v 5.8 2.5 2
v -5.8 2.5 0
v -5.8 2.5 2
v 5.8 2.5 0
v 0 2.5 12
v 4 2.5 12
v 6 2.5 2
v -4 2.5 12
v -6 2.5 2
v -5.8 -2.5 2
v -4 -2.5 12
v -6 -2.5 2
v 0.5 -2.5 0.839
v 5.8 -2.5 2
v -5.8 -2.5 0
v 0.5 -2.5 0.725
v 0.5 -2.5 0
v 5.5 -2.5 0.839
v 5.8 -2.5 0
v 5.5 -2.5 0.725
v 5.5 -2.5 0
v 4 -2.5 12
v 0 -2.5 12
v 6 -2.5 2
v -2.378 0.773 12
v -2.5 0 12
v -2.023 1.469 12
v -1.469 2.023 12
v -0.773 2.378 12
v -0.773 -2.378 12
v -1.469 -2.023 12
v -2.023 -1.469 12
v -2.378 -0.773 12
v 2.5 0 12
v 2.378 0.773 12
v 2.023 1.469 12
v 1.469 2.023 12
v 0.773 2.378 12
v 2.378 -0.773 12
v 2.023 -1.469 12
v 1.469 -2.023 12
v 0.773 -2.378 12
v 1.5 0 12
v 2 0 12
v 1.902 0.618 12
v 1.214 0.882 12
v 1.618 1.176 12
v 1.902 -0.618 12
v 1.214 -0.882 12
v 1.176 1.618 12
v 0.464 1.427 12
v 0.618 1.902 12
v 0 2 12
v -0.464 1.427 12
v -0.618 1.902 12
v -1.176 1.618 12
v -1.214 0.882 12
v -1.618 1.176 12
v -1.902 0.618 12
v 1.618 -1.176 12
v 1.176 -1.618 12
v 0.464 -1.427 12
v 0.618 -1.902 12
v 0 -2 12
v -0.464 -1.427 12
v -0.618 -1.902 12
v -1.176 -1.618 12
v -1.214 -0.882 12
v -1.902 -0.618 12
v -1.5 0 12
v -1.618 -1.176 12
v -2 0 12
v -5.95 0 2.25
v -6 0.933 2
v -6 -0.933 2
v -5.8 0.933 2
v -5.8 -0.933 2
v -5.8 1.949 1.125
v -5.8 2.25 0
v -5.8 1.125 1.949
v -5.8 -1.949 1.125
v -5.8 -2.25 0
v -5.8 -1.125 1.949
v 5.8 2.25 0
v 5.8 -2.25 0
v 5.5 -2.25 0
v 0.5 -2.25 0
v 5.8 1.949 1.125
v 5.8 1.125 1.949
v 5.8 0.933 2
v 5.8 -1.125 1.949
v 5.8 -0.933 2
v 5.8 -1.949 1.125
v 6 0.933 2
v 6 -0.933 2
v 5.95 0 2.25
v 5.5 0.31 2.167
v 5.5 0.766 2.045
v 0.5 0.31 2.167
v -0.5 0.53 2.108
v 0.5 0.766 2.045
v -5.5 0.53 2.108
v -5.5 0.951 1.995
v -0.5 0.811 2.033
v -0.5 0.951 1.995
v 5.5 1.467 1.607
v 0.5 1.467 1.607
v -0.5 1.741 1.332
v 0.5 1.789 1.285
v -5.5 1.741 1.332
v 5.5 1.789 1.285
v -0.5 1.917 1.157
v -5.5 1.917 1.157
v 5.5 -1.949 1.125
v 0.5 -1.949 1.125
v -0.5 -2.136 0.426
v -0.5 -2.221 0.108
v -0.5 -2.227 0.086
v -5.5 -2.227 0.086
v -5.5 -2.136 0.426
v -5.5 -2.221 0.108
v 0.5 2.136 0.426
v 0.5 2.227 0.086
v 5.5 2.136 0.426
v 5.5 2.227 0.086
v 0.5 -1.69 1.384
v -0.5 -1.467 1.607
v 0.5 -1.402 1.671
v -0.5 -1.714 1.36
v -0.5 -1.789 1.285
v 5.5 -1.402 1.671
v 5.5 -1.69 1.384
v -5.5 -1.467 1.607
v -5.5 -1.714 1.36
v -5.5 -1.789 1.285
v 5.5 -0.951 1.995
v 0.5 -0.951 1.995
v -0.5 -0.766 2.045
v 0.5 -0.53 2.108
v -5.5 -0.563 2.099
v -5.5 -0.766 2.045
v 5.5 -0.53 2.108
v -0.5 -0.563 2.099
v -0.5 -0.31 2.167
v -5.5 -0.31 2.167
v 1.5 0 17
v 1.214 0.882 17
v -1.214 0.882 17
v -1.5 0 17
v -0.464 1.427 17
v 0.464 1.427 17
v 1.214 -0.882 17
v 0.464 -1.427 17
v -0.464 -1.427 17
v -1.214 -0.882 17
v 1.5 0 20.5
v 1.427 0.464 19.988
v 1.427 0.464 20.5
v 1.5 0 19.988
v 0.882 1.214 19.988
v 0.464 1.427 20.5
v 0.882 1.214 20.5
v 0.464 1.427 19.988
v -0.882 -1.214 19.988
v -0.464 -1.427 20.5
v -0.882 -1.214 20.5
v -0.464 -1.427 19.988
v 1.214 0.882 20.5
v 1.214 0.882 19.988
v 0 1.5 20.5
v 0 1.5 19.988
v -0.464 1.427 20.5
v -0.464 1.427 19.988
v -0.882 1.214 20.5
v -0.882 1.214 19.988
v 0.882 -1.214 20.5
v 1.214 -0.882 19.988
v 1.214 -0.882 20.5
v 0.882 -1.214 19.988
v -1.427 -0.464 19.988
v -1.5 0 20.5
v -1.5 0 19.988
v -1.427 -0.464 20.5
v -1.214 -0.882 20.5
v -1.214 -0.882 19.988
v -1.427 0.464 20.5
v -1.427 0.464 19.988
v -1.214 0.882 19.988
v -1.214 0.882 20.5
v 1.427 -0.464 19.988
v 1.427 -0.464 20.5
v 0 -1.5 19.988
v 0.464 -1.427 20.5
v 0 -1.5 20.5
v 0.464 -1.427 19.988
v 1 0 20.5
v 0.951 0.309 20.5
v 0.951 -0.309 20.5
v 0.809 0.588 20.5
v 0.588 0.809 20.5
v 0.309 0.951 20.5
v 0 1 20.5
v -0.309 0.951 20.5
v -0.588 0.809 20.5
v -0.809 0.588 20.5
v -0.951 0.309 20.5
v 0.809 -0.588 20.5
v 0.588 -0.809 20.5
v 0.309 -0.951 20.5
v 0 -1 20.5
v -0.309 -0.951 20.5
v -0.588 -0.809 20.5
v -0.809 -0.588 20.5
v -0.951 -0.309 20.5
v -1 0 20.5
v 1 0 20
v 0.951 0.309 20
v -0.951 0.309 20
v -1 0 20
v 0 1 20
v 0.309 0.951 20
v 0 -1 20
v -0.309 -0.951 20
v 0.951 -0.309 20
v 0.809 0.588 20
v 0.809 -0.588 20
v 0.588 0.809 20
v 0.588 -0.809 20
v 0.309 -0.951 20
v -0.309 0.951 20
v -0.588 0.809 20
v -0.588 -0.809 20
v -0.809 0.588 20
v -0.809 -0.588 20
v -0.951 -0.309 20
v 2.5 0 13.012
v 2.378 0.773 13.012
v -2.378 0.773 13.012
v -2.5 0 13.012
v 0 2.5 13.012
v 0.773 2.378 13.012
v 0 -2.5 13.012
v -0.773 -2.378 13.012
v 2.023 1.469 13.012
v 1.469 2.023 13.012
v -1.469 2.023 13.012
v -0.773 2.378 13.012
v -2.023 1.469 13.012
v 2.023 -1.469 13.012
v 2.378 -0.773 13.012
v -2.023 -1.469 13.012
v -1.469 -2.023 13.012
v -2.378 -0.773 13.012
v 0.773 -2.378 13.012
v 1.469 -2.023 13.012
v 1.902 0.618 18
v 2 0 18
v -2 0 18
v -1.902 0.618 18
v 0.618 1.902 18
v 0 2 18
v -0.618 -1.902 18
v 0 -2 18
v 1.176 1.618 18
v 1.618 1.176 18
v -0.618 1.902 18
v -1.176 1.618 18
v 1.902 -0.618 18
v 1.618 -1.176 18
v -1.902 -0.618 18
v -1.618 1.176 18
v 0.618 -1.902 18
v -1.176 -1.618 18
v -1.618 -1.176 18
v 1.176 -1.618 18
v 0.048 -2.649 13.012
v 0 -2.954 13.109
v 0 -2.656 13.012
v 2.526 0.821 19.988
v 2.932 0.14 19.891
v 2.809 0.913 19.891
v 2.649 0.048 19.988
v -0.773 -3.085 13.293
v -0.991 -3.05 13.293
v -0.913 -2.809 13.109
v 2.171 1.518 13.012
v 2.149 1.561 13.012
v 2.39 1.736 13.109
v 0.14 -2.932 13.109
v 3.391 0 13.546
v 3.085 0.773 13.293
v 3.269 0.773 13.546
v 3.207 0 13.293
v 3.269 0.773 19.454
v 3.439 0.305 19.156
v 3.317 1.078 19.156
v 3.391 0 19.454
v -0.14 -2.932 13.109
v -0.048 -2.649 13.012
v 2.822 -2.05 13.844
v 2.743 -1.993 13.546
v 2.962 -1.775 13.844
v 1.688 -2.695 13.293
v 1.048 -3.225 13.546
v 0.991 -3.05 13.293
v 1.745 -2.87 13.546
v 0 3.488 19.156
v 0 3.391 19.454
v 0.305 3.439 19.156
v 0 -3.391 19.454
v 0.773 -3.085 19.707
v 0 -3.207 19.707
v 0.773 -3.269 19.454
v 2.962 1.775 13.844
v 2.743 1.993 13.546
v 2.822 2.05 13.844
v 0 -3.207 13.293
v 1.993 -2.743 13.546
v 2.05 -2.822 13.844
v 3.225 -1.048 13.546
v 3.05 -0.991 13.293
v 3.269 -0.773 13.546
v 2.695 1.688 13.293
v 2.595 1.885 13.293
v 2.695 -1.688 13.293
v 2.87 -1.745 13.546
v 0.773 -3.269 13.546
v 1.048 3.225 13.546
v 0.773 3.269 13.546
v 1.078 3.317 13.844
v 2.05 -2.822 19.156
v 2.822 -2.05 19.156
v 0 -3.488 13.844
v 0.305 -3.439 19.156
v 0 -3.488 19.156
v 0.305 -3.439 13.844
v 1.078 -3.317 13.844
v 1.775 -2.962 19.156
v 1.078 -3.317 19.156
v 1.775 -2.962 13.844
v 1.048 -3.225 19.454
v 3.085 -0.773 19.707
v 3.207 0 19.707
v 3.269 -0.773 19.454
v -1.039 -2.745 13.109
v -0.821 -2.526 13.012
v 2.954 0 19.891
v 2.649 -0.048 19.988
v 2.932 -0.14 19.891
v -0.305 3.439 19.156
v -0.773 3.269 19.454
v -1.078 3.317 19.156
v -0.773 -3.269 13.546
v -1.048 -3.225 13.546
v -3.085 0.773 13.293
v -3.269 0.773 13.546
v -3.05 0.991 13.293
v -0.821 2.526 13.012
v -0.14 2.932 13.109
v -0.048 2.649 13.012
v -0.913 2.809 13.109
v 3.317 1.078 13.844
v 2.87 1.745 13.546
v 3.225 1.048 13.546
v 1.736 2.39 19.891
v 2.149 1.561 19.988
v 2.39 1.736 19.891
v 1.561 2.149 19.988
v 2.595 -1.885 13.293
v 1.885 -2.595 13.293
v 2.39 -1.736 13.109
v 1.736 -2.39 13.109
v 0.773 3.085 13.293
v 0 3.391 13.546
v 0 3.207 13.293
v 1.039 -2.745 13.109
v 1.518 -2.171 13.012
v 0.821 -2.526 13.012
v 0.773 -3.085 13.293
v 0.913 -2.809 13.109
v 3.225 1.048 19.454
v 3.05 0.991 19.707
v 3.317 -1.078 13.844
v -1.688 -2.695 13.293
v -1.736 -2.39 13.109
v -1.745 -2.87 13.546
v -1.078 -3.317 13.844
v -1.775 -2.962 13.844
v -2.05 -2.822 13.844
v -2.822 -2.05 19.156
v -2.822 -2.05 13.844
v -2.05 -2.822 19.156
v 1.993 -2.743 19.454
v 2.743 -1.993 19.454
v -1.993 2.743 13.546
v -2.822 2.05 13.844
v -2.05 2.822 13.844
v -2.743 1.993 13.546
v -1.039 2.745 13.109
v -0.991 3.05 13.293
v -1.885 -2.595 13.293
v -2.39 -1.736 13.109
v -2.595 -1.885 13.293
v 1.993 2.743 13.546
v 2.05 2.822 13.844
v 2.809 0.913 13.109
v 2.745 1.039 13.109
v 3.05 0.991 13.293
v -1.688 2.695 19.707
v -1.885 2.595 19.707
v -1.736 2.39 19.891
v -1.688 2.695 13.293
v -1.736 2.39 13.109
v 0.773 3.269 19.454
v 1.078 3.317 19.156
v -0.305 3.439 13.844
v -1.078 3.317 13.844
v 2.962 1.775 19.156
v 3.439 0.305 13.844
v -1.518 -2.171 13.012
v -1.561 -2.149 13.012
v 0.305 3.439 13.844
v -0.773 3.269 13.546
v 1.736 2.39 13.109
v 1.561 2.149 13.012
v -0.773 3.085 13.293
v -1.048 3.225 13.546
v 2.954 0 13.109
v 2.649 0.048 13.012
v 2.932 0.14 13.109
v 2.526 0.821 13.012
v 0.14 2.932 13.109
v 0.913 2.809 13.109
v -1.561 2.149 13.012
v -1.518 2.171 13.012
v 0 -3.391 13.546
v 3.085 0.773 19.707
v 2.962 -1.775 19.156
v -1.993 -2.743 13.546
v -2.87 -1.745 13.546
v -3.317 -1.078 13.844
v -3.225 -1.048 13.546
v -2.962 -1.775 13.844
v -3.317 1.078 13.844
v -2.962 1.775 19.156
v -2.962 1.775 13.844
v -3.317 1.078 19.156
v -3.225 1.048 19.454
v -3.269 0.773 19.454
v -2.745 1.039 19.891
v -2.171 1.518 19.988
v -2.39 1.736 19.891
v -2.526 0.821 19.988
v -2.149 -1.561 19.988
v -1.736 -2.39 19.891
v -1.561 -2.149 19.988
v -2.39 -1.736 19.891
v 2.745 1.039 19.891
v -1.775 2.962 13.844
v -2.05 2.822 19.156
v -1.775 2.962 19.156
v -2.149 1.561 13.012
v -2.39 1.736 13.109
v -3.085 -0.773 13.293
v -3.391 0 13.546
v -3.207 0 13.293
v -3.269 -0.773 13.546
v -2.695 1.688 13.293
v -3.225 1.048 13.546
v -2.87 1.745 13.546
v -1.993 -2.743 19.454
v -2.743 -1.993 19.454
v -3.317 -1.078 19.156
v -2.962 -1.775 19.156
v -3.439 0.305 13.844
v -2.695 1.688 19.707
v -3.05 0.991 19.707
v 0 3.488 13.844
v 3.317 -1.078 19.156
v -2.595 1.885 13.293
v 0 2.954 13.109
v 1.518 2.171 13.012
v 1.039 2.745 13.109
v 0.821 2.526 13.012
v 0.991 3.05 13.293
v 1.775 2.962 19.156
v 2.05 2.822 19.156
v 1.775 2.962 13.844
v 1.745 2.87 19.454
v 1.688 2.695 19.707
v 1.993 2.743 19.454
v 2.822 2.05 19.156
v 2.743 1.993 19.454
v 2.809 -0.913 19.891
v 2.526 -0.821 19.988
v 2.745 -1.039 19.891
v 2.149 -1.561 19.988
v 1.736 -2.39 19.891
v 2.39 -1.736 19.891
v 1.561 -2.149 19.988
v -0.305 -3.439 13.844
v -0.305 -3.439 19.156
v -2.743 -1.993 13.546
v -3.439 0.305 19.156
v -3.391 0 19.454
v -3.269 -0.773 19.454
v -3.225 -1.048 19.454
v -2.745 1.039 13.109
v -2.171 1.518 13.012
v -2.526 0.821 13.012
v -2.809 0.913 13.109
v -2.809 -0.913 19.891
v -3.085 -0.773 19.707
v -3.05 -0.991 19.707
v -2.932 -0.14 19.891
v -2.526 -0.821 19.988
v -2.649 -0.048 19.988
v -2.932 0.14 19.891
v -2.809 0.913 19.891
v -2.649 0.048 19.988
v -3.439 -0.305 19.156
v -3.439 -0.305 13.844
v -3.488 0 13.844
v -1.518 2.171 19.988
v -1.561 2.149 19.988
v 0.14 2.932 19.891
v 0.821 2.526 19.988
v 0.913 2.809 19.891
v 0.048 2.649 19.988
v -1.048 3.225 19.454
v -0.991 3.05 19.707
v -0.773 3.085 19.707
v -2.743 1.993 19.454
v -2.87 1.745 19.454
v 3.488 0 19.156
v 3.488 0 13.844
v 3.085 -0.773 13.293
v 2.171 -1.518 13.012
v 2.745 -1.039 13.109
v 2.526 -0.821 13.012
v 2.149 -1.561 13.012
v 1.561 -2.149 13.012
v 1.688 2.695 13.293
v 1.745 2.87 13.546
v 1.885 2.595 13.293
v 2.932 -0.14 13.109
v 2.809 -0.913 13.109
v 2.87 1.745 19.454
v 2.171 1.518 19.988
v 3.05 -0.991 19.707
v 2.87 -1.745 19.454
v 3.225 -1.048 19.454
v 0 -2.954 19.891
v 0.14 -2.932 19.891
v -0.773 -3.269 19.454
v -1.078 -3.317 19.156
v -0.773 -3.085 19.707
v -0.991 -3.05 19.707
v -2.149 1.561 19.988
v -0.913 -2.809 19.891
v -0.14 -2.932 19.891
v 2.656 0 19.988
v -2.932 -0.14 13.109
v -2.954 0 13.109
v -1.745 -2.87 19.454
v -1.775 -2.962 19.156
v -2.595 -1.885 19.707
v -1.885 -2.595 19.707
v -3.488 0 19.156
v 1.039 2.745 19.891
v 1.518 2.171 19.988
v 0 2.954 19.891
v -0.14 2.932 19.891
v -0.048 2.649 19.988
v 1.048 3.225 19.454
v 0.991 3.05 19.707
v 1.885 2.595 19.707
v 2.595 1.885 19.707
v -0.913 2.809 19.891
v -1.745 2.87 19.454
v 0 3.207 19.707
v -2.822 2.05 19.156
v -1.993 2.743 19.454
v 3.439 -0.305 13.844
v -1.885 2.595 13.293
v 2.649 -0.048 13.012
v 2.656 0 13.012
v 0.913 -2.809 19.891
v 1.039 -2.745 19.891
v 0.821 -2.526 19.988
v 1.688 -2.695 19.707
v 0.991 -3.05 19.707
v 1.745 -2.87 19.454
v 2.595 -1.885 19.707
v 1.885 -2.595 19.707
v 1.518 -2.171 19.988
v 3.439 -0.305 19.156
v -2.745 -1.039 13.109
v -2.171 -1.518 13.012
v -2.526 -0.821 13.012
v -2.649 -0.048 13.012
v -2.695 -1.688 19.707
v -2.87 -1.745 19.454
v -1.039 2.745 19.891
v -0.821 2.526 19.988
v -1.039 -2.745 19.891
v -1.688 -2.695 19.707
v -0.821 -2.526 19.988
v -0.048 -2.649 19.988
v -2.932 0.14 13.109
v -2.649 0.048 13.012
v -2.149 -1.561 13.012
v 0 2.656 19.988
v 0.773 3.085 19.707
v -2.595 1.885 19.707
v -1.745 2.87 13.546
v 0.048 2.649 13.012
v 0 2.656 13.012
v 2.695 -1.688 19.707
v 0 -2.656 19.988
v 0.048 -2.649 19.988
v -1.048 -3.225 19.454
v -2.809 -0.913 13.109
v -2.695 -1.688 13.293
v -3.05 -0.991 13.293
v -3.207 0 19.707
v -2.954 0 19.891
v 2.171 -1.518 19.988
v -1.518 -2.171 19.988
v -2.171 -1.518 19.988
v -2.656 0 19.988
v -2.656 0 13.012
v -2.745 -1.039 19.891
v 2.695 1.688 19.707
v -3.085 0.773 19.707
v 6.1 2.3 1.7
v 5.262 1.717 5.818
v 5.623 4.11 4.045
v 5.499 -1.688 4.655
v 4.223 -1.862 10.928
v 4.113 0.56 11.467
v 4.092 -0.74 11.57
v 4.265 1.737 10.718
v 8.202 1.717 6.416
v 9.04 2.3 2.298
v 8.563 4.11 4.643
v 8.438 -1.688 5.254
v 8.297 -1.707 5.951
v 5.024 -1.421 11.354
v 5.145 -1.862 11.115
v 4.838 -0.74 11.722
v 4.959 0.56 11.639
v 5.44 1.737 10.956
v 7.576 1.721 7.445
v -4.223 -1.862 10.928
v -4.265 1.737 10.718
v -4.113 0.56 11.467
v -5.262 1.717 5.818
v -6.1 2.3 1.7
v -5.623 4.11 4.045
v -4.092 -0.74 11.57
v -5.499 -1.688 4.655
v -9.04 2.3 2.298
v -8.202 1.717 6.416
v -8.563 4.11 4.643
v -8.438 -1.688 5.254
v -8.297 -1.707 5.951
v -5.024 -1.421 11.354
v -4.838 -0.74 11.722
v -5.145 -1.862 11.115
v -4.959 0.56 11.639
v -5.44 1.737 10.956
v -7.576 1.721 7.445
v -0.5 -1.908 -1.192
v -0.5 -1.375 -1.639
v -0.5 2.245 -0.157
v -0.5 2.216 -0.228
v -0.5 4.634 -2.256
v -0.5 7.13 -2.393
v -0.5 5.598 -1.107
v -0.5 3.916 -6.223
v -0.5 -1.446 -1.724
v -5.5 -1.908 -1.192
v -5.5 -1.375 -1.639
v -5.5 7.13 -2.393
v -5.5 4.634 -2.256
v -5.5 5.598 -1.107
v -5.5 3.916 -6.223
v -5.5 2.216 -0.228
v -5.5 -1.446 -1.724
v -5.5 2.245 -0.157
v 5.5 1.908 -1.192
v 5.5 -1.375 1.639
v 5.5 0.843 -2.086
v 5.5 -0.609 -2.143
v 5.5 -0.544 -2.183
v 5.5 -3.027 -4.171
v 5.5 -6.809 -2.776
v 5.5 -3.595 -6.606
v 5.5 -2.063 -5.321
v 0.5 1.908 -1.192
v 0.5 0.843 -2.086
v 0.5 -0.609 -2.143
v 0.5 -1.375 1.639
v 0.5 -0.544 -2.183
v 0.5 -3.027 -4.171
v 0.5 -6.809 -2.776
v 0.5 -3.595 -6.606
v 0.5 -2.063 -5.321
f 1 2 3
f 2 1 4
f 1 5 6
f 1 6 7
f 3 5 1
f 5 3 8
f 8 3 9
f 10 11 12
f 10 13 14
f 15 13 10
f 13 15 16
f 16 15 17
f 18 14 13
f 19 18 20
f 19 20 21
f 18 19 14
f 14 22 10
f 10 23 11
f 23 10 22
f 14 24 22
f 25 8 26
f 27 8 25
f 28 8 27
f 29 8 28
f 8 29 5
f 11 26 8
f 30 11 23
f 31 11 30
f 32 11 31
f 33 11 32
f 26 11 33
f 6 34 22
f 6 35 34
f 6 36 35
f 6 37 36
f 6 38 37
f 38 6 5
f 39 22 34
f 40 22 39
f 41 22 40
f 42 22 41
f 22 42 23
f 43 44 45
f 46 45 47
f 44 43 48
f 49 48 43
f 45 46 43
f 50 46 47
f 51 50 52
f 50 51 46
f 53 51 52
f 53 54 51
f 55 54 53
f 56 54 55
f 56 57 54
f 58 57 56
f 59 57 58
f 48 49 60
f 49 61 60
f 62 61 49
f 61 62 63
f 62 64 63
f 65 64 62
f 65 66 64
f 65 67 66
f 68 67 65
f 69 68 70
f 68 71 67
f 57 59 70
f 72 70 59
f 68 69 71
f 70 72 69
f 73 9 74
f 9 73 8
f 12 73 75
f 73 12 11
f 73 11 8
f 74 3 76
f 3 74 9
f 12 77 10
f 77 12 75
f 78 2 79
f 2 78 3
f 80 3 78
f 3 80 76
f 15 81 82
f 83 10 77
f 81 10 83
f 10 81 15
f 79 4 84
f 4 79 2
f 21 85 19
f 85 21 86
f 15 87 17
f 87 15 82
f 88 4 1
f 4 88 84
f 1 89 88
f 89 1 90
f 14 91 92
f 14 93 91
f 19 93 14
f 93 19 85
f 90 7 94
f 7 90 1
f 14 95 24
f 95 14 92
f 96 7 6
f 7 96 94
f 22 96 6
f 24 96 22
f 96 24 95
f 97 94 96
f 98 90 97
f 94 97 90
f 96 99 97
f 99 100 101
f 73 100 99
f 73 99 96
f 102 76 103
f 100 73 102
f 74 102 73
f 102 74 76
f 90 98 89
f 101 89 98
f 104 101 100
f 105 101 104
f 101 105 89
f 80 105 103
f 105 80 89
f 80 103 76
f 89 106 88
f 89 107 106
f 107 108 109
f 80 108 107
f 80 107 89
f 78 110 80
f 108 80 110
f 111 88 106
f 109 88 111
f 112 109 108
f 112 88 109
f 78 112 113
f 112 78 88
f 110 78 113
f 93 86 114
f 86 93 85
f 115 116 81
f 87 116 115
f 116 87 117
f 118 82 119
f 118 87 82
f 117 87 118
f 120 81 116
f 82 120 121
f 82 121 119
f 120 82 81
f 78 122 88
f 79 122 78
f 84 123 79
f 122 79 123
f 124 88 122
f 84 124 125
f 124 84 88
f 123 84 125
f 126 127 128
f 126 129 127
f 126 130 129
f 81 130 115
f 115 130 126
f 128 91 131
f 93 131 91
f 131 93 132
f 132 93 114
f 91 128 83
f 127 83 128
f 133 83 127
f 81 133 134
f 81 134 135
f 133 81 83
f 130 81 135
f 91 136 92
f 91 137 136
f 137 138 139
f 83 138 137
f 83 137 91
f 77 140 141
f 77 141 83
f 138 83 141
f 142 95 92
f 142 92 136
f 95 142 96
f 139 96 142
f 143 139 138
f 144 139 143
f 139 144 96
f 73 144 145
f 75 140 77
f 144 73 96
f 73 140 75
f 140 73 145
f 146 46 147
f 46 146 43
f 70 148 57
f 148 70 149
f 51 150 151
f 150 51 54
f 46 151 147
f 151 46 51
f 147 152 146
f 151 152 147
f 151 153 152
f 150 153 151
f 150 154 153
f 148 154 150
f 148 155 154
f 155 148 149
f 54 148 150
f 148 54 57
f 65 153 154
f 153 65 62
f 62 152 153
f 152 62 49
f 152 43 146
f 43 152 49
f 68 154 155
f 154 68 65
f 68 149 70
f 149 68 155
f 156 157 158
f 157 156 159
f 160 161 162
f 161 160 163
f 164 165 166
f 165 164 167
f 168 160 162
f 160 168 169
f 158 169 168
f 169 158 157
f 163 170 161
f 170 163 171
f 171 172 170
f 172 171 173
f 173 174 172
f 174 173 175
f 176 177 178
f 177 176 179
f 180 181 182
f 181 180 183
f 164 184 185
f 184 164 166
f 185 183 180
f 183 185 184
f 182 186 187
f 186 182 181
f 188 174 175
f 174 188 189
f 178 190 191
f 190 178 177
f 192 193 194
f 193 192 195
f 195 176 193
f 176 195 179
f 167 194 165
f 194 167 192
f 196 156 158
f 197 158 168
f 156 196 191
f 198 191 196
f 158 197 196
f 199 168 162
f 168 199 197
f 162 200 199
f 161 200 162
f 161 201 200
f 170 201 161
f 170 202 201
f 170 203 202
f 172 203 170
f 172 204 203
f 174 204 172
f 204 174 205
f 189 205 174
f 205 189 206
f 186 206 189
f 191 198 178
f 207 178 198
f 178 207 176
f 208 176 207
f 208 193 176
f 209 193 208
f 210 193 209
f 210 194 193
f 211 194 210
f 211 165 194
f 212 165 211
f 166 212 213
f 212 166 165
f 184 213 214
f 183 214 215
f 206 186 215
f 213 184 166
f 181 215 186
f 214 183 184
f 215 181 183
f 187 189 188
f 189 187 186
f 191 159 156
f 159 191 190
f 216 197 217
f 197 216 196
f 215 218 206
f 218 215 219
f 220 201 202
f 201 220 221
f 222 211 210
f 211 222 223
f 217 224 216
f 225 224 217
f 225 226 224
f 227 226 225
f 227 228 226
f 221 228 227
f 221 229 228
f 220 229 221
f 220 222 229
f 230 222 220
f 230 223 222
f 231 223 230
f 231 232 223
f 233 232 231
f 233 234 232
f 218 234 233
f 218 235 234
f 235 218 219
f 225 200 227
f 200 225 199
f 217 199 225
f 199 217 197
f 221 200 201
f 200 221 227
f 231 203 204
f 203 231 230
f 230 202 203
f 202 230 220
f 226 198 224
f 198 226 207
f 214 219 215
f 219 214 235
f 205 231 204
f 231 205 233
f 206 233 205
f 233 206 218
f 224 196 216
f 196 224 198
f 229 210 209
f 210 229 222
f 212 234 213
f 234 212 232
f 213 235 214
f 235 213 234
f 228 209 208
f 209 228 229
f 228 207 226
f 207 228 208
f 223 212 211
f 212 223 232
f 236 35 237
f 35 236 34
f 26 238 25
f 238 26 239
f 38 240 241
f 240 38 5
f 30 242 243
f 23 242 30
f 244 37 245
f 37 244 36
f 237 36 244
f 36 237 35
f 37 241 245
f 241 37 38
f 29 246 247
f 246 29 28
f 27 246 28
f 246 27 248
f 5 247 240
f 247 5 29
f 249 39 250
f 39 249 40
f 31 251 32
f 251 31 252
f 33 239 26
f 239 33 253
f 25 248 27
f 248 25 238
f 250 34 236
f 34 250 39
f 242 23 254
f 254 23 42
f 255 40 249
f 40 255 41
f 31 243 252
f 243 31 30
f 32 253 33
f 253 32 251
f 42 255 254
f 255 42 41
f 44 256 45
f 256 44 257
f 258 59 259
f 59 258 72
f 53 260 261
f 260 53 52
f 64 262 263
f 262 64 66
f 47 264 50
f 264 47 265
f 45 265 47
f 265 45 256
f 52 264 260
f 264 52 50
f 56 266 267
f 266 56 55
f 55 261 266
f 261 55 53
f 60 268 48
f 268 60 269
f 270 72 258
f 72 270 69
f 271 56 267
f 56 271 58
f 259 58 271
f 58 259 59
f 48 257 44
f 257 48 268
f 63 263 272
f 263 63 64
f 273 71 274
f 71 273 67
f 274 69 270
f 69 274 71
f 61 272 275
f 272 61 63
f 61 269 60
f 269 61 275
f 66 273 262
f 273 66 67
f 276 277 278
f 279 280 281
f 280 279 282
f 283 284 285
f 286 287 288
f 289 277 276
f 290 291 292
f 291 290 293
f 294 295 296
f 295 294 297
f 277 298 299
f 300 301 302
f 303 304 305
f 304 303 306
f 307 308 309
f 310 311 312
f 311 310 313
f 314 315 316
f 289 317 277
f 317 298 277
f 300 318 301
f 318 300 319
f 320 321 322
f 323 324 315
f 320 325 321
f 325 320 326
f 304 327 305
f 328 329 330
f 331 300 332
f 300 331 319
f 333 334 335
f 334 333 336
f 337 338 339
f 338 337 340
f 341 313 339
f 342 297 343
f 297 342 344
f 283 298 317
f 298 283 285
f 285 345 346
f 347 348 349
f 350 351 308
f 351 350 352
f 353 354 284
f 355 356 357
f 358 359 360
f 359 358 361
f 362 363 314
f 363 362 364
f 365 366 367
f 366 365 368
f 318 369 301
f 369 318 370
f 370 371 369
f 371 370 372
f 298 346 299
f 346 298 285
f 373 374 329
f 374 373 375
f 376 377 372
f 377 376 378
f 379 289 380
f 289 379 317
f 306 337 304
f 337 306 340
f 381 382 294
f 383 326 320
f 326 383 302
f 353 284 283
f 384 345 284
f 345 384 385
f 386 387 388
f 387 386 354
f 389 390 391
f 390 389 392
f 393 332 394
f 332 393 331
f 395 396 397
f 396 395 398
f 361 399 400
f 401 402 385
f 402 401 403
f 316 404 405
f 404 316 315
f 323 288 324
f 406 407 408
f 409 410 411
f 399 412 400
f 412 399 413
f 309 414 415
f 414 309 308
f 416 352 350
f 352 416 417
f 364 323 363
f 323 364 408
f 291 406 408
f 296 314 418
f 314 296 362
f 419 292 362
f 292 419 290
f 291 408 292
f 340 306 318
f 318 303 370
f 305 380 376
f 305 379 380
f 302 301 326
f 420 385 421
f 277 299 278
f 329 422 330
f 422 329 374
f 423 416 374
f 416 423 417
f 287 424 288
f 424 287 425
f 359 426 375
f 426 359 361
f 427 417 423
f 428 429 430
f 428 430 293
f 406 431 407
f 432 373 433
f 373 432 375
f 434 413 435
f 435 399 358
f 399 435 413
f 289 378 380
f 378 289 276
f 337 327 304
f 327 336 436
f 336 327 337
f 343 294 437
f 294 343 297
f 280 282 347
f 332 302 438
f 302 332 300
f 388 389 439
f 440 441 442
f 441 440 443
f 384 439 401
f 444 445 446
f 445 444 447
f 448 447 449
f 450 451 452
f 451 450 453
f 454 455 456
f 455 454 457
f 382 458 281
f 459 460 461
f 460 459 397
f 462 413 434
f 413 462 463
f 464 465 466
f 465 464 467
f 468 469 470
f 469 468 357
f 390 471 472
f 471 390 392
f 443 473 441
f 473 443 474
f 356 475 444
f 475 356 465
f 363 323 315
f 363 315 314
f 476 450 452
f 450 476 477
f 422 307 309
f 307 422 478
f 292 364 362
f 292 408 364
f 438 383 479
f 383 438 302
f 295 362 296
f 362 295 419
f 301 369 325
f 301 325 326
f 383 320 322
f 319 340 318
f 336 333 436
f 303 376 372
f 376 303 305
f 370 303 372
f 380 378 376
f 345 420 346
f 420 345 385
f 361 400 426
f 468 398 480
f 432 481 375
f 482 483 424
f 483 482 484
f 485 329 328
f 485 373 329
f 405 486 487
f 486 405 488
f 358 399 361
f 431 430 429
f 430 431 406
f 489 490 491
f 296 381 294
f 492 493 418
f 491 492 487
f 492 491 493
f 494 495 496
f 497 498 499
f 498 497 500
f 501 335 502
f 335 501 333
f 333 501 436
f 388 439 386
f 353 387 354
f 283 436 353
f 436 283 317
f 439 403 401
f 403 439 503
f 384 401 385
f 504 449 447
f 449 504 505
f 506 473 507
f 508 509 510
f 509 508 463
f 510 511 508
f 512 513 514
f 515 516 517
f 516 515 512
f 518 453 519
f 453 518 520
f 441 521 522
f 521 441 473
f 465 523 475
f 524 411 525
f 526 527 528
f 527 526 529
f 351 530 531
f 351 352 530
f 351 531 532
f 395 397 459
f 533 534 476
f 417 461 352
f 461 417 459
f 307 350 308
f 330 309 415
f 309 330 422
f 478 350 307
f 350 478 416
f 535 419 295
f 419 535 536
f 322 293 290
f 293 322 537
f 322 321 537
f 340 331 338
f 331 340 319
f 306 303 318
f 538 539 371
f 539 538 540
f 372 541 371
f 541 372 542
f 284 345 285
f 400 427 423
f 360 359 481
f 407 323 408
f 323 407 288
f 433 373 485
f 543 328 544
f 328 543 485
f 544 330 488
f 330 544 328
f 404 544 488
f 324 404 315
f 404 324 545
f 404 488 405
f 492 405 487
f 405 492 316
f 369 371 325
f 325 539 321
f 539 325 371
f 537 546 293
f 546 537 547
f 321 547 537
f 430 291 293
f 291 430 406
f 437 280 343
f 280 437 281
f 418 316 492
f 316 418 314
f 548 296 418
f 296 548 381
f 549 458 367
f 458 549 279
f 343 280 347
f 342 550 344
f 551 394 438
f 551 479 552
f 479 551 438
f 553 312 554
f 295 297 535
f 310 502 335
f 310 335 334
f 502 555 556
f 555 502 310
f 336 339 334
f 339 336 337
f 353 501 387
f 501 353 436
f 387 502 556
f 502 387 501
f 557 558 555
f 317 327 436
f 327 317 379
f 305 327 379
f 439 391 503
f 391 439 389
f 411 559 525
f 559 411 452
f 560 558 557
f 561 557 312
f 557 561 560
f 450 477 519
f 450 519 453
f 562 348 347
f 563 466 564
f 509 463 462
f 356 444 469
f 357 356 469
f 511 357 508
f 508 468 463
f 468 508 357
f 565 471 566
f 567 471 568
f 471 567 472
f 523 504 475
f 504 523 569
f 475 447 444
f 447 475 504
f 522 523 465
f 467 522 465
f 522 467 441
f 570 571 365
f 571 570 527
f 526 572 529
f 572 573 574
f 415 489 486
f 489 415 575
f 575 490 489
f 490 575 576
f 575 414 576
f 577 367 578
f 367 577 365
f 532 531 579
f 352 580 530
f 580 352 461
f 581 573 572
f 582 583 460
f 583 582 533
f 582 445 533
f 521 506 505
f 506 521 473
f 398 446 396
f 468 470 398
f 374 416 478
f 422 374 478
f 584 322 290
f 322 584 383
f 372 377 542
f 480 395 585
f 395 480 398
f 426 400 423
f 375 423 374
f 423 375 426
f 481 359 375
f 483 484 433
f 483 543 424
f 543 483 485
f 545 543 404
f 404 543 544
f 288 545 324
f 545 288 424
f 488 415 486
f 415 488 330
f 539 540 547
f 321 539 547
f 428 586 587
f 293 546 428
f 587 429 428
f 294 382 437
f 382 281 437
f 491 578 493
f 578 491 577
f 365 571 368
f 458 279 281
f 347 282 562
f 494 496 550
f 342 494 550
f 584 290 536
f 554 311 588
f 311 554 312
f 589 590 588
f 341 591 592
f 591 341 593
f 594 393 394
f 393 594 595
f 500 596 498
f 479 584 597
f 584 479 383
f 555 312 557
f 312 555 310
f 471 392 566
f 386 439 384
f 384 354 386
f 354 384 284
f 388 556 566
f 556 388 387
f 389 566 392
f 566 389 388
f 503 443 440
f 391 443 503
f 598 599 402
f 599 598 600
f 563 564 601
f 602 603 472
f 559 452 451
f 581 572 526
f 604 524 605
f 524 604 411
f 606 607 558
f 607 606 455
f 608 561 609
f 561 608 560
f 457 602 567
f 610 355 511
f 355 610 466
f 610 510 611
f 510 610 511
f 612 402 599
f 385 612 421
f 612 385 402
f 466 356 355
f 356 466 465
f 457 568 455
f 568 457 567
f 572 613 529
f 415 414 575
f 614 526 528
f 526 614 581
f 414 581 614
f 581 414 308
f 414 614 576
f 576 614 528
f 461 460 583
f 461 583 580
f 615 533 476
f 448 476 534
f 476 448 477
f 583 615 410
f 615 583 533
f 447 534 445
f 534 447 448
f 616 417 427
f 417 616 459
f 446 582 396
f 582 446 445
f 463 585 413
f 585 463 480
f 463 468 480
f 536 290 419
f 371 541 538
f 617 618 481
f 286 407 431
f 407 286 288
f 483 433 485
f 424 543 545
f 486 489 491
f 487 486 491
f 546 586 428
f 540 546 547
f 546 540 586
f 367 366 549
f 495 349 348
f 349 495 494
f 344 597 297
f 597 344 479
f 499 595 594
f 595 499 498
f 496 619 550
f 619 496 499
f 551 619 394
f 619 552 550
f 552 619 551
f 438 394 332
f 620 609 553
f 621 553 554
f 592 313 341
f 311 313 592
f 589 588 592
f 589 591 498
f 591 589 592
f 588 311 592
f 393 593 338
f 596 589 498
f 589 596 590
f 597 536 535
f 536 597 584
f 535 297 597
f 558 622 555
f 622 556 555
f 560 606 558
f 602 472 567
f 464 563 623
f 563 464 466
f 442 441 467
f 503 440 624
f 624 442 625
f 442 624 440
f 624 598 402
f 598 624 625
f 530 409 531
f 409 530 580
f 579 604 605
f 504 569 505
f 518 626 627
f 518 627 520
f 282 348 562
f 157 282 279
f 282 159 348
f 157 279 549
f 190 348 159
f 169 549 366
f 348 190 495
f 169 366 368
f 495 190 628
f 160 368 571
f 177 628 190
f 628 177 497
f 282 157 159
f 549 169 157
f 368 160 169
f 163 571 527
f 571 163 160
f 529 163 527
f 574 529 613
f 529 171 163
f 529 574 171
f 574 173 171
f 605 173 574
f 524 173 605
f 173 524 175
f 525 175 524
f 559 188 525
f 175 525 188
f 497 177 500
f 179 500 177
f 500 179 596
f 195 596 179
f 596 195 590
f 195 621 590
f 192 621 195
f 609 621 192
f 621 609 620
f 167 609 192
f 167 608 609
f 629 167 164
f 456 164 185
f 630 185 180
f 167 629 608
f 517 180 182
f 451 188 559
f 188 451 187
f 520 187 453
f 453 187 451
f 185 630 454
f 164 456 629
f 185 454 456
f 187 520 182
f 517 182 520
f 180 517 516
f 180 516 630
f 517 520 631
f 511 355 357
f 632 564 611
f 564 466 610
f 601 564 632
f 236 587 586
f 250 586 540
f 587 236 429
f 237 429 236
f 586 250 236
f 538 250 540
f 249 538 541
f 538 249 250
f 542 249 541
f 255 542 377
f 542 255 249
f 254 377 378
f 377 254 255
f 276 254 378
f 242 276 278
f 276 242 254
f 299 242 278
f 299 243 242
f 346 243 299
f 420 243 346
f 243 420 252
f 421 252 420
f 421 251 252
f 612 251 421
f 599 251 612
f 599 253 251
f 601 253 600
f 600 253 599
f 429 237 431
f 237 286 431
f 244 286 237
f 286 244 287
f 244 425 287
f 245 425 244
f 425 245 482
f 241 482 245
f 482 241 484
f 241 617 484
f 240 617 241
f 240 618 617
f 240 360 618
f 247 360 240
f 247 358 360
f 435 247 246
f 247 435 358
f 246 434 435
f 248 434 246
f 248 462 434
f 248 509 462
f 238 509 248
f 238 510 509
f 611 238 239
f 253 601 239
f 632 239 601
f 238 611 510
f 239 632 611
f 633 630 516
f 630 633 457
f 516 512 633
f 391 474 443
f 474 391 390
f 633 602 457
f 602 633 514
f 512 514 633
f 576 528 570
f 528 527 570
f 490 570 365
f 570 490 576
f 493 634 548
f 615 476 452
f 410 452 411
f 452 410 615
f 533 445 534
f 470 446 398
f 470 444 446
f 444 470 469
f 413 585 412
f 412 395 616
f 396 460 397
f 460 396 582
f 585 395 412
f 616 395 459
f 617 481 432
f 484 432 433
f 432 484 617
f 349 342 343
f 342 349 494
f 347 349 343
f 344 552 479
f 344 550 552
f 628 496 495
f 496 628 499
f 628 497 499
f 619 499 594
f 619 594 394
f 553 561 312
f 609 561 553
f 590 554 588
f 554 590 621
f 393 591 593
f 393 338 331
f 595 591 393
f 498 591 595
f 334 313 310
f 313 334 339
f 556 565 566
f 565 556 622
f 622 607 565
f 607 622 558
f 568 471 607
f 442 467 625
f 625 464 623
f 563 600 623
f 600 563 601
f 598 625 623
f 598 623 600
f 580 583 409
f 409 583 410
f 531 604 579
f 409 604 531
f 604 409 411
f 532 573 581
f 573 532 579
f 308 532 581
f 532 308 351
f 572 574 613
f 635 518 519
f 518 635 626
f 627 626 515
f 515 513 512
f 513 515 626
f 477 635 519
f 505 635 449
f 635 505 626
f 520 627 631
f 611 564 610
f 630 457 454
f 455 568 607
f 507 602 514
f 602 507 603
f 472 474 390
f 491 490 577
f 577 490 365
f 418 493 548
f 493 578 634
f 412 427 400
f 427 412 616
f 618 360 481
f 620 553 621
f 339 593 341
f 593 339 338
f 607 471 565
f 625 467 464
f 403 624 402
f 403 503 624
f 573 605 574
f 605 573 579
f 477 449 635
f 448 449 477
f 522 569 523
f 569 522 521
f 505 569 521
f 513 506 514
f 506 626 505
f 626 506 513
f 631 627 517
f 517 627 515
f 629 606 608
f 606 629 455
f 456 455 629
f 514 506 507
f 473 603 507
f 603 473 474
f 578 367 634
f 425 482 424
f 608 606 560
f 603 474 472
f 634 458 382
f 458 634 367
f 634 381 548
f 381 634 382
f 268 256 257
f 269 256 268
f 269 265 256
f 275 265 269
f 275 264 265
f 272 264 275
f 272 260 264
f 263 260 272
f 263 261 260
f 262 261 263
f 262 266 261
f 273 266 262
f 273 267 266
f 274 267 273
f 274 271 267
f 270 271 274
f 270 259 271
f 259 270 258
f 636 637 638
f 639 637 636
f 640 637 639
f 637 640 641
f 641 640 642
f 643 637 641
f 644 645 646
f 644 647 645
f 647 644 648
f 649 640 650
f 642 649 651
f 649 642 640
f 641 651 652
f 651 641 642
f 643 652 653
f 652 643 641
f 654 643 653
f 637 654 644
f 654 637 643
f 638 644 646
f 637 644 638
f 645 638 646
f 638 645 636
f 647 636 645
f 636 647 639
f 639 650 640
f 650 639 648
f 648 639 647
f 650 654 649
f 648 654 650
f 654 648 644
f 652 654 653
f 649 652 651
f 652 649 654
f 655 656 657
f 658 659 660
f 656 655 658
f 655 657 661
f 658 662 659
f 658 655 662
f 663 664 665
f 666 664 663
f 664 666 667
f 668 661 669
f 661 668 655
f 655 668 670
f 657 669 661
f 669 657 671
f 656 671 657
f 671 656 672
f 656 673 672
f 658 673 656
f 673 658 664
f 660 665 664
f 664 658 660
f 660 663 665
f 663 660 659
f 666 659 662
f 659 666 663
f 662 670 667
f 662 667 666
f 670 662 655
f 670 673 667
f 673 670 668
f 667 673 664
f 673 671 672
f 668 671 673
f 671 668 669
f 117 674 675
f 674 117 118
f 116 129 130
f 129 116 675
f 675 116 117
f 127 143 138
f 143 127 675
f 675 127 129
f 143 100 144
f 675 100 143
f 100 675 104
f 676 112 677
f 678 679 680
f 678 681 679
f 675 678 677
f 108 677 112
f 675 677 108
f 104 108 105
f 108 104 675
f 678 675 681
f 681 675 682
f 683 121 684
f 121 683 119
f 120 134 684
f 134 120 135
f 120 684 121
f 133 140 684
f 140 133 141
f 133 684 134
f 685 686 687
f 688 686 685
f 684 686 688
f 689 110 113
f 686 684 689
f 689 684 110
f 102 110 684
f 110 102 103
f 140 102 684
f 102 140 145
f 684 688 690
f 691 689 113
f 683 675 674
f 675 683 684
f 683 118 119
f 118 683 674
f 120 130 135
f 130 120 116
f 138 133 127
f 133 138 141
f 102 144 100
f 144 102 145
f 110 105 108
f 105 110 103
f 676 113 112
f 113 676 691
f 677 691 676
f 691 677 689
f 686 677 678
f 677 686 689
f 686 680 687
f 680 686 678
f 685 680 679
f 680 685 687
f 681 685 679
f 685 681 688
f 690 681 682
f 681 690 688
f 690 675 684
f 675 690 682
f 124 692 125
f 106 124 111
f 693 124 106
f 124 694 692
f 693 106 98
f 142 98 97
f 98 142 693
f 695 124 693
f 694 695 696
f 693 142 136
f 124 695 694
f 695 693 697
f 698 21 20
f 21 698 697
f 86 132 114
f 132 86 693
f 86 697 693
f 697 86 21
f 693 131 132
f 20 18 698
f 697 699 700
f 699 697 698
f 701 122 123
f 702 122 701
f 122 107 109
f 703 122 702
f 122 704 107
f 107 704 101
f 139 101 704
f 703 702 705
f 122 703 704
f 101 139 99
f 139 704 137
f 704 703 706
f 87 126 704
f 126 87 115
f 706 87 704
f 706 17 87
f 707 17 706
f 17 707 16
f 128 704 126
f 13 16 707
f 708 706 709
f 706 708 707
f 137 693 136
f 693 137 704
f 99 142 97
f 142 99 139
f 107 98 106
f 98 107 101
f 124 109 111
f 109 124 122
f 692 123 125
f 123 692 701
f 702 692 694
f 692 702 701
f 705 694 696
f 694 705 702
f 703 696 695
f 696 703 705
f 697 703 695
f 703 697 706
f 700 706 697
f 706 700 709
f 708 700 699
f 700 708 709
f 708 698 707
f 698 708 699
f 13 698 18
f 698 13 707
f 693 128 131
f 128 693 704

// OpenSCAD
module Head() {
  $fn=20;
  
  difference() {
    union() {
      minkowski() {
        cylinder(d=5, h=5);
        sphere(d=2);
      }
      translate([0,0,5.5])
        difference() {
          cylinder(d=3, h=1);
          translate([0,0,0.5]) cylinder(d=2, h=1);
        }
      translate([0, 0, -2]) {
        difference() {
          cylinder(d=5, h=2);
          translate([0, 0, -0.5]) cylinder(d=4, h=2);
        }
      }
    }
    
    translate([0, 0, -2])
      cylinder(d=4, h=6);
  }
}

module Body() {
  translate([0, 0, 12])
    cylinder(d=3, h=5, $fn=10);

  translate([6, 2.5, 0])
    rotate([0, -90, 0])
      difference() {
        rotate([90, 0, 0])
          linear_extrude(height=5)
            polygon([
              [0, 0.2],
              [2, 0.2],
              [2, 0],
              [12, 2],
              [12, 10],
              [2, 12],
              [2, 11.8],
              [0, 11.8],
              [0, 0],
            ]);
        translate([0, -2.5, 0])
          cylinder(d=4.5, h=12, $fn=12);
      }
}

module Leg() {
  translate([2.5, 0, 0])
    rotate([0, -90, 0])
      linear_extrude(height=5)
        union() {
          circle(d=4.5, $fn=10);
          translate([-7, -2.25])
            polygon([
              [0,0],
              [7,0],
              [7,3.5],
              [2,3.5],
              [2,5],
              [0,5],
              [0,0],
            ]);
        }
}

module Arm() {
  mirror([0, 1, 0]) translate([6.1, -2.3, 1.7]) 
    rotate([78.5, 0, 90])
      rotate([0, 0, 37.1])
        difference() {
          linear_extrude(height=3)
            polygon([
              [0, 0],
              [5, 0],
              [9, 5],
              [8.5, 6.2],
              [7.4, 6.9],
              [6, 7],
              [3, 3],
              [0, 3],
              [0, 0],
            ]);
          
            translate([6, 0, 3])
              rotate([0, 20, 45])
                cube([10, 5, 5]);
        }
}

module ArmLeft() {
  Arm();
}
module ArmRight() {
  mirror([1, 0, 0]) Arm();
}

module LegRight() {
  translate([-3, 0, 0]) Leg();
}
module LegLeft() {
  translate([3, 0, 0]) Leg();
}

translate([0, 0, 14]) color("orange") Head();
color([0.5, 0.5, 0.5]) Body();

rotate([50, 0, 0])
  color("red") LegRight();
rotate([-50, 0, 0])
  color("red") LegLeft();

color("green") ArmLeft();
color("green") ArmRight();
